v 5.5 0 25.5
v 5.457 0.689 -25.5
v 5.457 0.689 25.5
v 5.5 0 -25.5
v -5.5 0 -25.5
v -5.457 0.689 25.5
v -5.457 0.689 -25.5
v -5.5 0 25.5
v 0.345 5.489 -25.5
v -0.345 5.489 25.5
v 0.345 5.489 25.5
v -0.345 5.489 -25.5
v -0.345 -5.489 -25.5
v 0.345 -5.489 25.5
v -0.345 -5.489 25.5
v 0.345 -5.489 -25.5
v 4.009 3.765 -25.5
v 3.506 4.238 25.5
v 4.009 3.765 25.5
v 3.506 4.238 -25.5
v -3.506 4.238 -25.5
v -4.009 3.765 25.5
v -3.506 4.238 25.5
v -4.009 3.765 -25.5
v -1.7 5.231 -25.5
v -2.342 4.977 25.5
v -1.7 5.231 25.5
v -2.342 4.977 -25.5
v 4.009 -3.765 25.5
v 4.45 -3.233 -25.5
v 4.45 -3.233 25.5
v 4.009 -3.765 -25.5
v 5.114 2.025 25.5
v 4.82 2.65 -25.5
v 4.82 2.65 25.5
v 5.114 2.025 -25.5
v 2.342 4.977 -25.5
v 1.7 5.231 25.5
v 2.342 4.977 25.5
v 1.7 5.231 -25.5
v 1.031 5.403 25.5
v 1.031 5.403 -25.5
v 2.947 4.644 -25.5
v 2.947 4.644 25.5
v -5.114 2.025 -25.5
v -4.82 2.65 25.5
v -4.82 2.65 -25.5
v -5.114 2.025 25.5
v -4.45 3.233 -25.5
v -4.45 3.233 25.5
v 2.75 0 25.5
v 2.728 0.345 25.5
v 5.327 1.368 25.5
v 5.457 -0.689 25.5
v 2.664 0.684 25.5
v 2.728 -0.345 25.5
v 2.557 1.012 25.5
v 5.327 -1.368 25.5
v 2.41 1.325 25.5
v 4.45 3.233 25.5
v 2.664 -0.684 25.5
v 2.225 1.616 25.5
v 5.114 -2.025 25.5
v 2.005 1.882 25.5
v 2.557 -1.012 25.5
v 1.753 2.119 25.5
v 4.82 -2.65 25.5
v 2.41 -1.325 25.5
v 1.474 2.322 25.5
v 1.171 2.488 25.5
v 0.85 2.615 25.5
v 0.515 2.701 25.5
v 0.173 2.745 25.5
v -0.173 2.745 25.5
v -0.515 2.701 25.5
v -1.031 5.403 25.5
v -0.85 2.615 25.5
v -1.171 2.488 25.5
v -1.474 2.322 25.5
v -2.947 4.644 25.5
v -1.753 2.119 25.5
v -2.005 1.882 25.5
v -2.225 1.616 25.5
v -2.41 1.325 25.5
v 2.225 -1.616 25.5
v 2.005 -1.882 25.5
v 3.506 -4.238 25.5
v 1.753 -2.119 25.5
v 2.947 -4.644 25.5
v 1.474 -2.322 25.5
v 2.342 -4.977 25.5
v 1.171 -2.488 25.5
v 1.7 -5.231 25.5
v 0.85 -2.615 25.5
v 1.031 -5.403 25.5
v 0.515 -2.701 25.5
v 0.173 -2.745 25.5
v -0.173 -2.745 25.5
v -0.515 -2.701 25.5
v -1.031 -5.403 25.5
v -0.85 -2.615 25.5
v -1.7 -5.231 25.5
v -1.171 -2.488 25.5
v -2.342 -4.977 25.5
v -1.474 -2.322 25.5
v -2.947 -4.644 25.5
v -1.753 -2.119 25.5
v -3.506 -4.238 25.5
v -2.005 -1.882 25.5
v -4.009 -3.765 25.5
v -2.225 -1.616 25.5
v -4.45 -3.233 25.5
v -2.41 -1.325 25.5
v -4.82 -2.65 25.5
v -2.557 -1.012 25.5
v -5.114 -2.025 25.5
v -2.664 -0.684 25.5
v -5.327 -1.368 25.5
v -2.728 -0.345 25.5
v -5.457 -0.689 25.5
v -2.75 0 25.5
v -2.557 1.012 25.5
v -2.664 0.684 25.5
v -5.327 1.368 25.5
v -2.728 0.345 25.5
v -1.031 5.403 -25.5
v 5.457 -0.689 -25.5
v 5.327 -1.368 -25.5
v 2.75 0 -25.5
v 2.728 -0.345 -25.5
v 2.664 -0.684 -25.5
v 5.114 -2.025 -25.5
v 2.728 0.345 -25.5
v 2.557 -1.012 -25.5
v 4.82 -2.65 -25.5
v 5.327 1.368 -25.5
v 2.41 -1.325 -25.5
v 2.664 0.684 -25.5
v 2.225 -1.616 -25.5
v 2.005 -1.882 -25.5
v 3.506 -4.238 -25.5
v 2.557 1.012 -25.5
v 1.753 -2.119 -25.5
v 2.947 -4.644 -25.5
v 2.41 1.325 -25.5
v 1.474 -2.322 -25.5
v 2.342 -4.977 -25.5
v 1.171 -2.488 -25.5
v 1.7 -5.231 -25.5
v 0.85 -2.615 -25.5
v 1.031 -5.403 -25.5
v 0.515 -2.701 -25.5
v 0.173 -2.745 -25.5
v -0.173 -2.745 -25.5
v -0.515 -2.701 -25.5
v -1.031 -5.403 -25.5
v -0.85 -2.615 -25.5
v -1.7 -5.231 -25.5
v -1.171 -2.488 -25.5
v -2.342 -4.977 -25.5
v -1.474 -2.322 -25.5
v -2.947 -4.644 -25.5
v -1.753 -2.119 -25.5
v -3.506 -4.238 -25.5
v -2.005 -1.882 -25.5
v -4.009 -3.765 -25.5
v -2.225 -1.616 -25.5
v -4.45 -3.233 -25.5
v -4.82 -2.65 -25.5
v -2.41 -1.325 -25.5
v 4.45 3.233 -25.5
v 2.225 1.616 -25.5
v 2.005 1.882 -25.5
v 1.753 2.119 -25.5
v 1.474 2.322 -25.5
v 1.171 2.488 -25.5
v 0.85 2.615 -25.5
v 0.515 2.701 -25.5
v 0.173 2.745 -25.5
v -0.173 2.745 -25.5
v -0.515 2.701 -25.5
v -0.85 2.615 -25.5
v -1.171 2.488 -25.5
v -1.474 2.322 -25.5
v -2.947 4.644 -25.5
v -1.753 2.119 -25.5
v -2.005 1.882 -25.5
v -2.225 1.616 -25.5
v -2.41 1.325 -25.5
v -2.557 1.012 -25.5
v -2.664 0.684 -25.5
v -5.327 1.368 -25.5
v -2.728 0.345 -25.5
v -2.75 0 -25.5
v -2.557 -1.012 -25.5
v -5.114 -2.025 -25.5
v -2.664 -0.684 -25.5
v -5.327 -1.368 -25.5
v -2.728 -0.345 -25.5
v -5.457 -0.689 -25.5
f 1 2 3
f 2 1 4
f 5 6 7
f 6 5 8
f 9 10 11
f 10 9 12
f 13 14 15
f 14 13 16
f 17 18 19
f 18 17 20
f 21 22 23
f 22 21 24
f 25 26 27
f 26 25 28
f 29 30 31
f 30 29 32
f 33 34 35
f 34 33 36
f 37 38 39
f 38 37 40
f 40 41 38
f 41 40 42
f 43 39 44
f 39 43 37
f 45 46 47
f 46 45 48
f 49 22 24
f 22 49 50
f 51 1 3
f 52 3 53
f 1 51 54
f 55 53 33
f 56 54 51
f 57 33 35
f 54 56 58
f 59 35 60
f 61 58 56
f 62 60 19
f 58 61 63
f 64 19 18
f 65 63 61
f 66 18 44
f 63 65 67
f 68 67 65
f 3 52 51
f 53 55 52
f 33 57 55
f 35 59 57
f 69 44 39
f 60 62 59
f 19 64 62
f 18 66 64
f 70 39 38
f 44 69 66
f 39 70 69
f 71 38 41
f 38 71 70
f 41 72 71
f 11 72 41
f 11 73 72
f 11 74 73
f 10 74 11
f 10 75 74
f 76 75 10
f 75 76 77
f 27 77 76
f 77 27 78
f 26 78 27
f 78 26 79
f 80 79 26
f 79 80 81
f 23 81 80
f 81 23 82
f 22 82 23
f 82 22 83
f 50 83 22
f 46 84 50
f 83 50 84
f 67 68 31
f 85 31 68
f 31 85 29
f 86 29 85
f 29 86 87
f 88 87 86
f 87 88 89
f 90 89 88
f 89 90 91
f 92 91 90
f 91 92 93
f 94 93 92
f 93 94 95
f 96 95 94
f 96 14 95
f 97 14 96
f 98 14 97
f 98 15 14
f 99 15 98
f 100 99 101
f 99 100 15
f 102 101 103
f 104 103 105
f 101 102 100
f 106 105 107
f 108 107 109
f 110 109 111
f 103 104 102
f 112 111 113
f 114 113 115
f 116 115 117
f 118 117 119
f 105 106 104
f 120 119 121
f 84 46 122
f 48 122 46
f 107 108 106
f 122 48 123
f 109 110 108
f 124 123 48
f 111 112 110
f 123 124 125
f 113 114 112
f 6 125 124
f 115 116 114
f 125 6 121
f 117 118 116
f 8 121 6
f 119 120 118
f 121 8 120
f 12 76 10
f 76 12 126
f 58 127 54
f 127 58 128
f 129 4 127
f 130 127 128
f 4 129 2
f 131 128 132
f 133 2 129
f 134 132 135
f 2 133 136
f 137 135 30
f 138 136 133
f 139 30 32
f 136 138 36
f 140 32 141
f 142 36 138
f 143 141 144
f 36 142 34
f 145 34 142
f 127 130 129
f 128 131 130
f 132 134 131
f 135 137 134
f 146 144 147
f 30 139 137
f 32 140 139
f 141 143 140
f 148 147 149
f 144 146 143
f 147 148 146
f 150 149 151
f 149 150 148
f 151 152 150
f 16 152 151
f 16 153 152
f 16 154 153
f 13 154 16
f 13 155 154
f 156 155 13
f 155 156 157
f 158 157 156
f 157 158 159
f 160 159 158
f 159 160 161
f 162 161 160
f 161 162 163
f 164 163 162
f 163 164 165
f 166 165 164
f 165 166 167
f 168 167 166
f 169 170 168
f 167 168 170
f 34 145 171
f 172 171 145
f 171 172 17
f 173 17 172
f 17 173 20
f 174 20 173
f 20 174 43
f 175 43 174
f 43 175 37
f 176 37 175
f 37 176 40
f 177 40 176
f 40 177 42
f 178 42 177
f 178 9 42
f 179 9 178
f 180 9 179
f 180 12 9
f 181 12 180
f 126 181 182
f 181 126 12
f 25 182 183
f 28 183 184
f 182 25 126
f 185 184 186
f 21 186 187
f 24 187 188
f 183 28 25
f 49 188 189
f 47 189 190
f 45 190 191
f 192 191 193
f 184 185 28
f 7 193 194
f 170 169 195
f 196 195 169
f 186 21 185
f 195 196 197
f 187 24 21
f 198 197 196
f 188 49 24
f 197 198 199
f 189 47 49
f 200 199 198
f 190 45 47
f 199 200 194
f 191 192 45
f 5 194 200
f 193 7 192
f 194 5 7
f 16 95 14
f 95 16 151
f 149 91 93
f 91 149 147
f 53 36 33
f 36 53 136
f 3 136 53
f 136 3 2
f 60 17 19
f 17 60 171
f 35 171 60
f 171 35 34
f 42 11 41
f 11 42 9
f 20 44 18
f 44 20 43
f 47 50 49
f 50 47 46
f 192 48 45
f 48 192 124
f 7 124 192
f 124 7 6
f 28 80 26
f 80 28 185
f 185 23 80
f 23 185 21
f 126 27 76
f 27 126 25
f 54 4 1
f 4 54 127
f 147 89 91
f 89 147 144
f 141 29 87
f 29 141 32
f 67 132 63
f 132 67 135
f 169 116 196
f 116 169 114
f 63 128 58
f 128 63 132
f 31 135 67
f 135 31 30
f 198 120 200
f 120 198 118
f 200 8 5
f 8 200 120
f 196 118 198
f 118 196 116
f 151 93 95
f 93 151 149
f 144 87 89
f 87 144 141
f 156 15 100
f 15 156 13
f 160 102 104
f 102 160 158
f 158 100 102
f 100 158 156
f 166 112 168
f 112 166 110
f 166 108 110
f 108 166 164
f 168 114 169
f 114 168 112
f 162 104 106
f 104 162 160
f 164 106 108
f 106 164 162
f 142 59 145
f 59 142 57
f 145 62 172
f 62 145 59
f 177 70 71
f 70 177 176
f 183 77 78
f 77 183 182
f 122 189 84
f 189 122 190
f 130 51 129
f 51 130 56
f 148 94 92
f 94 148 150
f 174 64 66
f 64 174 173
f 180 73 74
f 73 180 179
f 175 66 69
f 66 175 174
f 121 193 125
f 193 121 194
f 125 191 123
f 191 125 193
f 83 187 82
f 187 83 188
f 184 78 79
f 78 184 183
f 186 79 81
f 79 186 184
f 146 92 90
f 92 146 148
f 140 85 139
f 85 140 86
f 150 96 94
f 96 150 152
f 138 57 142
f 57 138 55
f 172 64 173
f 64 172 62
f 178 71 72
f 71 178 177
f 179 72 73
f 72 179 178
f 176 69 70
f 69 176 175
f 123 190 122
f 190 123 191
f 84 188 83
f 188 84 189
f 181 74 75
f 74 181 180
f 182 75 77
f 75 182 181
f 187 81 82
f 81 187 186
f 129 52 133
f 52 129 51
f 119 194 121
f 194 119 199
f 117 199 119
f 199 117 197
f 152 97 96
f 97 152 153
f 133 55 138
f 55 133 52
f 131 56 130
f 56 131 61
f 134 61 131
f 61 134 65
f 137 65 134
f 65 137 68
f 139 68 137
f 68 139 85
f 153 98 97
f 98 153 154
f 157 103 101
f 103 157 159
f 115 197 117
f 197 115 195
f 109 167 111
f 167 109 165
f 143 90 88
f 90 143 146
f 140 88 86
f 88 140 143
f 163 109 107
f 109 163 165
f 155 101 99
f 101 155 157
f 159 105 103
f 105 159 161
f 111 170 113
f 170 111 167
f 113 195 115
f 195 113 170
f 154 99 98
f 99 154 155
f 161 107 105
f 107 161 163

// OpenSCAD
$fn = 50;


difference() {
	union() {
		translate(v = [0, 0, -25.5000000000]) {
			cylinder(h = 51, r = 5.5000000000);
		}
	}
	union() {
		translate(v = [0, 0, -100.0000000000]) {
			cylinder(h = 200, r = 2.7500000000);
		}
	}
}
